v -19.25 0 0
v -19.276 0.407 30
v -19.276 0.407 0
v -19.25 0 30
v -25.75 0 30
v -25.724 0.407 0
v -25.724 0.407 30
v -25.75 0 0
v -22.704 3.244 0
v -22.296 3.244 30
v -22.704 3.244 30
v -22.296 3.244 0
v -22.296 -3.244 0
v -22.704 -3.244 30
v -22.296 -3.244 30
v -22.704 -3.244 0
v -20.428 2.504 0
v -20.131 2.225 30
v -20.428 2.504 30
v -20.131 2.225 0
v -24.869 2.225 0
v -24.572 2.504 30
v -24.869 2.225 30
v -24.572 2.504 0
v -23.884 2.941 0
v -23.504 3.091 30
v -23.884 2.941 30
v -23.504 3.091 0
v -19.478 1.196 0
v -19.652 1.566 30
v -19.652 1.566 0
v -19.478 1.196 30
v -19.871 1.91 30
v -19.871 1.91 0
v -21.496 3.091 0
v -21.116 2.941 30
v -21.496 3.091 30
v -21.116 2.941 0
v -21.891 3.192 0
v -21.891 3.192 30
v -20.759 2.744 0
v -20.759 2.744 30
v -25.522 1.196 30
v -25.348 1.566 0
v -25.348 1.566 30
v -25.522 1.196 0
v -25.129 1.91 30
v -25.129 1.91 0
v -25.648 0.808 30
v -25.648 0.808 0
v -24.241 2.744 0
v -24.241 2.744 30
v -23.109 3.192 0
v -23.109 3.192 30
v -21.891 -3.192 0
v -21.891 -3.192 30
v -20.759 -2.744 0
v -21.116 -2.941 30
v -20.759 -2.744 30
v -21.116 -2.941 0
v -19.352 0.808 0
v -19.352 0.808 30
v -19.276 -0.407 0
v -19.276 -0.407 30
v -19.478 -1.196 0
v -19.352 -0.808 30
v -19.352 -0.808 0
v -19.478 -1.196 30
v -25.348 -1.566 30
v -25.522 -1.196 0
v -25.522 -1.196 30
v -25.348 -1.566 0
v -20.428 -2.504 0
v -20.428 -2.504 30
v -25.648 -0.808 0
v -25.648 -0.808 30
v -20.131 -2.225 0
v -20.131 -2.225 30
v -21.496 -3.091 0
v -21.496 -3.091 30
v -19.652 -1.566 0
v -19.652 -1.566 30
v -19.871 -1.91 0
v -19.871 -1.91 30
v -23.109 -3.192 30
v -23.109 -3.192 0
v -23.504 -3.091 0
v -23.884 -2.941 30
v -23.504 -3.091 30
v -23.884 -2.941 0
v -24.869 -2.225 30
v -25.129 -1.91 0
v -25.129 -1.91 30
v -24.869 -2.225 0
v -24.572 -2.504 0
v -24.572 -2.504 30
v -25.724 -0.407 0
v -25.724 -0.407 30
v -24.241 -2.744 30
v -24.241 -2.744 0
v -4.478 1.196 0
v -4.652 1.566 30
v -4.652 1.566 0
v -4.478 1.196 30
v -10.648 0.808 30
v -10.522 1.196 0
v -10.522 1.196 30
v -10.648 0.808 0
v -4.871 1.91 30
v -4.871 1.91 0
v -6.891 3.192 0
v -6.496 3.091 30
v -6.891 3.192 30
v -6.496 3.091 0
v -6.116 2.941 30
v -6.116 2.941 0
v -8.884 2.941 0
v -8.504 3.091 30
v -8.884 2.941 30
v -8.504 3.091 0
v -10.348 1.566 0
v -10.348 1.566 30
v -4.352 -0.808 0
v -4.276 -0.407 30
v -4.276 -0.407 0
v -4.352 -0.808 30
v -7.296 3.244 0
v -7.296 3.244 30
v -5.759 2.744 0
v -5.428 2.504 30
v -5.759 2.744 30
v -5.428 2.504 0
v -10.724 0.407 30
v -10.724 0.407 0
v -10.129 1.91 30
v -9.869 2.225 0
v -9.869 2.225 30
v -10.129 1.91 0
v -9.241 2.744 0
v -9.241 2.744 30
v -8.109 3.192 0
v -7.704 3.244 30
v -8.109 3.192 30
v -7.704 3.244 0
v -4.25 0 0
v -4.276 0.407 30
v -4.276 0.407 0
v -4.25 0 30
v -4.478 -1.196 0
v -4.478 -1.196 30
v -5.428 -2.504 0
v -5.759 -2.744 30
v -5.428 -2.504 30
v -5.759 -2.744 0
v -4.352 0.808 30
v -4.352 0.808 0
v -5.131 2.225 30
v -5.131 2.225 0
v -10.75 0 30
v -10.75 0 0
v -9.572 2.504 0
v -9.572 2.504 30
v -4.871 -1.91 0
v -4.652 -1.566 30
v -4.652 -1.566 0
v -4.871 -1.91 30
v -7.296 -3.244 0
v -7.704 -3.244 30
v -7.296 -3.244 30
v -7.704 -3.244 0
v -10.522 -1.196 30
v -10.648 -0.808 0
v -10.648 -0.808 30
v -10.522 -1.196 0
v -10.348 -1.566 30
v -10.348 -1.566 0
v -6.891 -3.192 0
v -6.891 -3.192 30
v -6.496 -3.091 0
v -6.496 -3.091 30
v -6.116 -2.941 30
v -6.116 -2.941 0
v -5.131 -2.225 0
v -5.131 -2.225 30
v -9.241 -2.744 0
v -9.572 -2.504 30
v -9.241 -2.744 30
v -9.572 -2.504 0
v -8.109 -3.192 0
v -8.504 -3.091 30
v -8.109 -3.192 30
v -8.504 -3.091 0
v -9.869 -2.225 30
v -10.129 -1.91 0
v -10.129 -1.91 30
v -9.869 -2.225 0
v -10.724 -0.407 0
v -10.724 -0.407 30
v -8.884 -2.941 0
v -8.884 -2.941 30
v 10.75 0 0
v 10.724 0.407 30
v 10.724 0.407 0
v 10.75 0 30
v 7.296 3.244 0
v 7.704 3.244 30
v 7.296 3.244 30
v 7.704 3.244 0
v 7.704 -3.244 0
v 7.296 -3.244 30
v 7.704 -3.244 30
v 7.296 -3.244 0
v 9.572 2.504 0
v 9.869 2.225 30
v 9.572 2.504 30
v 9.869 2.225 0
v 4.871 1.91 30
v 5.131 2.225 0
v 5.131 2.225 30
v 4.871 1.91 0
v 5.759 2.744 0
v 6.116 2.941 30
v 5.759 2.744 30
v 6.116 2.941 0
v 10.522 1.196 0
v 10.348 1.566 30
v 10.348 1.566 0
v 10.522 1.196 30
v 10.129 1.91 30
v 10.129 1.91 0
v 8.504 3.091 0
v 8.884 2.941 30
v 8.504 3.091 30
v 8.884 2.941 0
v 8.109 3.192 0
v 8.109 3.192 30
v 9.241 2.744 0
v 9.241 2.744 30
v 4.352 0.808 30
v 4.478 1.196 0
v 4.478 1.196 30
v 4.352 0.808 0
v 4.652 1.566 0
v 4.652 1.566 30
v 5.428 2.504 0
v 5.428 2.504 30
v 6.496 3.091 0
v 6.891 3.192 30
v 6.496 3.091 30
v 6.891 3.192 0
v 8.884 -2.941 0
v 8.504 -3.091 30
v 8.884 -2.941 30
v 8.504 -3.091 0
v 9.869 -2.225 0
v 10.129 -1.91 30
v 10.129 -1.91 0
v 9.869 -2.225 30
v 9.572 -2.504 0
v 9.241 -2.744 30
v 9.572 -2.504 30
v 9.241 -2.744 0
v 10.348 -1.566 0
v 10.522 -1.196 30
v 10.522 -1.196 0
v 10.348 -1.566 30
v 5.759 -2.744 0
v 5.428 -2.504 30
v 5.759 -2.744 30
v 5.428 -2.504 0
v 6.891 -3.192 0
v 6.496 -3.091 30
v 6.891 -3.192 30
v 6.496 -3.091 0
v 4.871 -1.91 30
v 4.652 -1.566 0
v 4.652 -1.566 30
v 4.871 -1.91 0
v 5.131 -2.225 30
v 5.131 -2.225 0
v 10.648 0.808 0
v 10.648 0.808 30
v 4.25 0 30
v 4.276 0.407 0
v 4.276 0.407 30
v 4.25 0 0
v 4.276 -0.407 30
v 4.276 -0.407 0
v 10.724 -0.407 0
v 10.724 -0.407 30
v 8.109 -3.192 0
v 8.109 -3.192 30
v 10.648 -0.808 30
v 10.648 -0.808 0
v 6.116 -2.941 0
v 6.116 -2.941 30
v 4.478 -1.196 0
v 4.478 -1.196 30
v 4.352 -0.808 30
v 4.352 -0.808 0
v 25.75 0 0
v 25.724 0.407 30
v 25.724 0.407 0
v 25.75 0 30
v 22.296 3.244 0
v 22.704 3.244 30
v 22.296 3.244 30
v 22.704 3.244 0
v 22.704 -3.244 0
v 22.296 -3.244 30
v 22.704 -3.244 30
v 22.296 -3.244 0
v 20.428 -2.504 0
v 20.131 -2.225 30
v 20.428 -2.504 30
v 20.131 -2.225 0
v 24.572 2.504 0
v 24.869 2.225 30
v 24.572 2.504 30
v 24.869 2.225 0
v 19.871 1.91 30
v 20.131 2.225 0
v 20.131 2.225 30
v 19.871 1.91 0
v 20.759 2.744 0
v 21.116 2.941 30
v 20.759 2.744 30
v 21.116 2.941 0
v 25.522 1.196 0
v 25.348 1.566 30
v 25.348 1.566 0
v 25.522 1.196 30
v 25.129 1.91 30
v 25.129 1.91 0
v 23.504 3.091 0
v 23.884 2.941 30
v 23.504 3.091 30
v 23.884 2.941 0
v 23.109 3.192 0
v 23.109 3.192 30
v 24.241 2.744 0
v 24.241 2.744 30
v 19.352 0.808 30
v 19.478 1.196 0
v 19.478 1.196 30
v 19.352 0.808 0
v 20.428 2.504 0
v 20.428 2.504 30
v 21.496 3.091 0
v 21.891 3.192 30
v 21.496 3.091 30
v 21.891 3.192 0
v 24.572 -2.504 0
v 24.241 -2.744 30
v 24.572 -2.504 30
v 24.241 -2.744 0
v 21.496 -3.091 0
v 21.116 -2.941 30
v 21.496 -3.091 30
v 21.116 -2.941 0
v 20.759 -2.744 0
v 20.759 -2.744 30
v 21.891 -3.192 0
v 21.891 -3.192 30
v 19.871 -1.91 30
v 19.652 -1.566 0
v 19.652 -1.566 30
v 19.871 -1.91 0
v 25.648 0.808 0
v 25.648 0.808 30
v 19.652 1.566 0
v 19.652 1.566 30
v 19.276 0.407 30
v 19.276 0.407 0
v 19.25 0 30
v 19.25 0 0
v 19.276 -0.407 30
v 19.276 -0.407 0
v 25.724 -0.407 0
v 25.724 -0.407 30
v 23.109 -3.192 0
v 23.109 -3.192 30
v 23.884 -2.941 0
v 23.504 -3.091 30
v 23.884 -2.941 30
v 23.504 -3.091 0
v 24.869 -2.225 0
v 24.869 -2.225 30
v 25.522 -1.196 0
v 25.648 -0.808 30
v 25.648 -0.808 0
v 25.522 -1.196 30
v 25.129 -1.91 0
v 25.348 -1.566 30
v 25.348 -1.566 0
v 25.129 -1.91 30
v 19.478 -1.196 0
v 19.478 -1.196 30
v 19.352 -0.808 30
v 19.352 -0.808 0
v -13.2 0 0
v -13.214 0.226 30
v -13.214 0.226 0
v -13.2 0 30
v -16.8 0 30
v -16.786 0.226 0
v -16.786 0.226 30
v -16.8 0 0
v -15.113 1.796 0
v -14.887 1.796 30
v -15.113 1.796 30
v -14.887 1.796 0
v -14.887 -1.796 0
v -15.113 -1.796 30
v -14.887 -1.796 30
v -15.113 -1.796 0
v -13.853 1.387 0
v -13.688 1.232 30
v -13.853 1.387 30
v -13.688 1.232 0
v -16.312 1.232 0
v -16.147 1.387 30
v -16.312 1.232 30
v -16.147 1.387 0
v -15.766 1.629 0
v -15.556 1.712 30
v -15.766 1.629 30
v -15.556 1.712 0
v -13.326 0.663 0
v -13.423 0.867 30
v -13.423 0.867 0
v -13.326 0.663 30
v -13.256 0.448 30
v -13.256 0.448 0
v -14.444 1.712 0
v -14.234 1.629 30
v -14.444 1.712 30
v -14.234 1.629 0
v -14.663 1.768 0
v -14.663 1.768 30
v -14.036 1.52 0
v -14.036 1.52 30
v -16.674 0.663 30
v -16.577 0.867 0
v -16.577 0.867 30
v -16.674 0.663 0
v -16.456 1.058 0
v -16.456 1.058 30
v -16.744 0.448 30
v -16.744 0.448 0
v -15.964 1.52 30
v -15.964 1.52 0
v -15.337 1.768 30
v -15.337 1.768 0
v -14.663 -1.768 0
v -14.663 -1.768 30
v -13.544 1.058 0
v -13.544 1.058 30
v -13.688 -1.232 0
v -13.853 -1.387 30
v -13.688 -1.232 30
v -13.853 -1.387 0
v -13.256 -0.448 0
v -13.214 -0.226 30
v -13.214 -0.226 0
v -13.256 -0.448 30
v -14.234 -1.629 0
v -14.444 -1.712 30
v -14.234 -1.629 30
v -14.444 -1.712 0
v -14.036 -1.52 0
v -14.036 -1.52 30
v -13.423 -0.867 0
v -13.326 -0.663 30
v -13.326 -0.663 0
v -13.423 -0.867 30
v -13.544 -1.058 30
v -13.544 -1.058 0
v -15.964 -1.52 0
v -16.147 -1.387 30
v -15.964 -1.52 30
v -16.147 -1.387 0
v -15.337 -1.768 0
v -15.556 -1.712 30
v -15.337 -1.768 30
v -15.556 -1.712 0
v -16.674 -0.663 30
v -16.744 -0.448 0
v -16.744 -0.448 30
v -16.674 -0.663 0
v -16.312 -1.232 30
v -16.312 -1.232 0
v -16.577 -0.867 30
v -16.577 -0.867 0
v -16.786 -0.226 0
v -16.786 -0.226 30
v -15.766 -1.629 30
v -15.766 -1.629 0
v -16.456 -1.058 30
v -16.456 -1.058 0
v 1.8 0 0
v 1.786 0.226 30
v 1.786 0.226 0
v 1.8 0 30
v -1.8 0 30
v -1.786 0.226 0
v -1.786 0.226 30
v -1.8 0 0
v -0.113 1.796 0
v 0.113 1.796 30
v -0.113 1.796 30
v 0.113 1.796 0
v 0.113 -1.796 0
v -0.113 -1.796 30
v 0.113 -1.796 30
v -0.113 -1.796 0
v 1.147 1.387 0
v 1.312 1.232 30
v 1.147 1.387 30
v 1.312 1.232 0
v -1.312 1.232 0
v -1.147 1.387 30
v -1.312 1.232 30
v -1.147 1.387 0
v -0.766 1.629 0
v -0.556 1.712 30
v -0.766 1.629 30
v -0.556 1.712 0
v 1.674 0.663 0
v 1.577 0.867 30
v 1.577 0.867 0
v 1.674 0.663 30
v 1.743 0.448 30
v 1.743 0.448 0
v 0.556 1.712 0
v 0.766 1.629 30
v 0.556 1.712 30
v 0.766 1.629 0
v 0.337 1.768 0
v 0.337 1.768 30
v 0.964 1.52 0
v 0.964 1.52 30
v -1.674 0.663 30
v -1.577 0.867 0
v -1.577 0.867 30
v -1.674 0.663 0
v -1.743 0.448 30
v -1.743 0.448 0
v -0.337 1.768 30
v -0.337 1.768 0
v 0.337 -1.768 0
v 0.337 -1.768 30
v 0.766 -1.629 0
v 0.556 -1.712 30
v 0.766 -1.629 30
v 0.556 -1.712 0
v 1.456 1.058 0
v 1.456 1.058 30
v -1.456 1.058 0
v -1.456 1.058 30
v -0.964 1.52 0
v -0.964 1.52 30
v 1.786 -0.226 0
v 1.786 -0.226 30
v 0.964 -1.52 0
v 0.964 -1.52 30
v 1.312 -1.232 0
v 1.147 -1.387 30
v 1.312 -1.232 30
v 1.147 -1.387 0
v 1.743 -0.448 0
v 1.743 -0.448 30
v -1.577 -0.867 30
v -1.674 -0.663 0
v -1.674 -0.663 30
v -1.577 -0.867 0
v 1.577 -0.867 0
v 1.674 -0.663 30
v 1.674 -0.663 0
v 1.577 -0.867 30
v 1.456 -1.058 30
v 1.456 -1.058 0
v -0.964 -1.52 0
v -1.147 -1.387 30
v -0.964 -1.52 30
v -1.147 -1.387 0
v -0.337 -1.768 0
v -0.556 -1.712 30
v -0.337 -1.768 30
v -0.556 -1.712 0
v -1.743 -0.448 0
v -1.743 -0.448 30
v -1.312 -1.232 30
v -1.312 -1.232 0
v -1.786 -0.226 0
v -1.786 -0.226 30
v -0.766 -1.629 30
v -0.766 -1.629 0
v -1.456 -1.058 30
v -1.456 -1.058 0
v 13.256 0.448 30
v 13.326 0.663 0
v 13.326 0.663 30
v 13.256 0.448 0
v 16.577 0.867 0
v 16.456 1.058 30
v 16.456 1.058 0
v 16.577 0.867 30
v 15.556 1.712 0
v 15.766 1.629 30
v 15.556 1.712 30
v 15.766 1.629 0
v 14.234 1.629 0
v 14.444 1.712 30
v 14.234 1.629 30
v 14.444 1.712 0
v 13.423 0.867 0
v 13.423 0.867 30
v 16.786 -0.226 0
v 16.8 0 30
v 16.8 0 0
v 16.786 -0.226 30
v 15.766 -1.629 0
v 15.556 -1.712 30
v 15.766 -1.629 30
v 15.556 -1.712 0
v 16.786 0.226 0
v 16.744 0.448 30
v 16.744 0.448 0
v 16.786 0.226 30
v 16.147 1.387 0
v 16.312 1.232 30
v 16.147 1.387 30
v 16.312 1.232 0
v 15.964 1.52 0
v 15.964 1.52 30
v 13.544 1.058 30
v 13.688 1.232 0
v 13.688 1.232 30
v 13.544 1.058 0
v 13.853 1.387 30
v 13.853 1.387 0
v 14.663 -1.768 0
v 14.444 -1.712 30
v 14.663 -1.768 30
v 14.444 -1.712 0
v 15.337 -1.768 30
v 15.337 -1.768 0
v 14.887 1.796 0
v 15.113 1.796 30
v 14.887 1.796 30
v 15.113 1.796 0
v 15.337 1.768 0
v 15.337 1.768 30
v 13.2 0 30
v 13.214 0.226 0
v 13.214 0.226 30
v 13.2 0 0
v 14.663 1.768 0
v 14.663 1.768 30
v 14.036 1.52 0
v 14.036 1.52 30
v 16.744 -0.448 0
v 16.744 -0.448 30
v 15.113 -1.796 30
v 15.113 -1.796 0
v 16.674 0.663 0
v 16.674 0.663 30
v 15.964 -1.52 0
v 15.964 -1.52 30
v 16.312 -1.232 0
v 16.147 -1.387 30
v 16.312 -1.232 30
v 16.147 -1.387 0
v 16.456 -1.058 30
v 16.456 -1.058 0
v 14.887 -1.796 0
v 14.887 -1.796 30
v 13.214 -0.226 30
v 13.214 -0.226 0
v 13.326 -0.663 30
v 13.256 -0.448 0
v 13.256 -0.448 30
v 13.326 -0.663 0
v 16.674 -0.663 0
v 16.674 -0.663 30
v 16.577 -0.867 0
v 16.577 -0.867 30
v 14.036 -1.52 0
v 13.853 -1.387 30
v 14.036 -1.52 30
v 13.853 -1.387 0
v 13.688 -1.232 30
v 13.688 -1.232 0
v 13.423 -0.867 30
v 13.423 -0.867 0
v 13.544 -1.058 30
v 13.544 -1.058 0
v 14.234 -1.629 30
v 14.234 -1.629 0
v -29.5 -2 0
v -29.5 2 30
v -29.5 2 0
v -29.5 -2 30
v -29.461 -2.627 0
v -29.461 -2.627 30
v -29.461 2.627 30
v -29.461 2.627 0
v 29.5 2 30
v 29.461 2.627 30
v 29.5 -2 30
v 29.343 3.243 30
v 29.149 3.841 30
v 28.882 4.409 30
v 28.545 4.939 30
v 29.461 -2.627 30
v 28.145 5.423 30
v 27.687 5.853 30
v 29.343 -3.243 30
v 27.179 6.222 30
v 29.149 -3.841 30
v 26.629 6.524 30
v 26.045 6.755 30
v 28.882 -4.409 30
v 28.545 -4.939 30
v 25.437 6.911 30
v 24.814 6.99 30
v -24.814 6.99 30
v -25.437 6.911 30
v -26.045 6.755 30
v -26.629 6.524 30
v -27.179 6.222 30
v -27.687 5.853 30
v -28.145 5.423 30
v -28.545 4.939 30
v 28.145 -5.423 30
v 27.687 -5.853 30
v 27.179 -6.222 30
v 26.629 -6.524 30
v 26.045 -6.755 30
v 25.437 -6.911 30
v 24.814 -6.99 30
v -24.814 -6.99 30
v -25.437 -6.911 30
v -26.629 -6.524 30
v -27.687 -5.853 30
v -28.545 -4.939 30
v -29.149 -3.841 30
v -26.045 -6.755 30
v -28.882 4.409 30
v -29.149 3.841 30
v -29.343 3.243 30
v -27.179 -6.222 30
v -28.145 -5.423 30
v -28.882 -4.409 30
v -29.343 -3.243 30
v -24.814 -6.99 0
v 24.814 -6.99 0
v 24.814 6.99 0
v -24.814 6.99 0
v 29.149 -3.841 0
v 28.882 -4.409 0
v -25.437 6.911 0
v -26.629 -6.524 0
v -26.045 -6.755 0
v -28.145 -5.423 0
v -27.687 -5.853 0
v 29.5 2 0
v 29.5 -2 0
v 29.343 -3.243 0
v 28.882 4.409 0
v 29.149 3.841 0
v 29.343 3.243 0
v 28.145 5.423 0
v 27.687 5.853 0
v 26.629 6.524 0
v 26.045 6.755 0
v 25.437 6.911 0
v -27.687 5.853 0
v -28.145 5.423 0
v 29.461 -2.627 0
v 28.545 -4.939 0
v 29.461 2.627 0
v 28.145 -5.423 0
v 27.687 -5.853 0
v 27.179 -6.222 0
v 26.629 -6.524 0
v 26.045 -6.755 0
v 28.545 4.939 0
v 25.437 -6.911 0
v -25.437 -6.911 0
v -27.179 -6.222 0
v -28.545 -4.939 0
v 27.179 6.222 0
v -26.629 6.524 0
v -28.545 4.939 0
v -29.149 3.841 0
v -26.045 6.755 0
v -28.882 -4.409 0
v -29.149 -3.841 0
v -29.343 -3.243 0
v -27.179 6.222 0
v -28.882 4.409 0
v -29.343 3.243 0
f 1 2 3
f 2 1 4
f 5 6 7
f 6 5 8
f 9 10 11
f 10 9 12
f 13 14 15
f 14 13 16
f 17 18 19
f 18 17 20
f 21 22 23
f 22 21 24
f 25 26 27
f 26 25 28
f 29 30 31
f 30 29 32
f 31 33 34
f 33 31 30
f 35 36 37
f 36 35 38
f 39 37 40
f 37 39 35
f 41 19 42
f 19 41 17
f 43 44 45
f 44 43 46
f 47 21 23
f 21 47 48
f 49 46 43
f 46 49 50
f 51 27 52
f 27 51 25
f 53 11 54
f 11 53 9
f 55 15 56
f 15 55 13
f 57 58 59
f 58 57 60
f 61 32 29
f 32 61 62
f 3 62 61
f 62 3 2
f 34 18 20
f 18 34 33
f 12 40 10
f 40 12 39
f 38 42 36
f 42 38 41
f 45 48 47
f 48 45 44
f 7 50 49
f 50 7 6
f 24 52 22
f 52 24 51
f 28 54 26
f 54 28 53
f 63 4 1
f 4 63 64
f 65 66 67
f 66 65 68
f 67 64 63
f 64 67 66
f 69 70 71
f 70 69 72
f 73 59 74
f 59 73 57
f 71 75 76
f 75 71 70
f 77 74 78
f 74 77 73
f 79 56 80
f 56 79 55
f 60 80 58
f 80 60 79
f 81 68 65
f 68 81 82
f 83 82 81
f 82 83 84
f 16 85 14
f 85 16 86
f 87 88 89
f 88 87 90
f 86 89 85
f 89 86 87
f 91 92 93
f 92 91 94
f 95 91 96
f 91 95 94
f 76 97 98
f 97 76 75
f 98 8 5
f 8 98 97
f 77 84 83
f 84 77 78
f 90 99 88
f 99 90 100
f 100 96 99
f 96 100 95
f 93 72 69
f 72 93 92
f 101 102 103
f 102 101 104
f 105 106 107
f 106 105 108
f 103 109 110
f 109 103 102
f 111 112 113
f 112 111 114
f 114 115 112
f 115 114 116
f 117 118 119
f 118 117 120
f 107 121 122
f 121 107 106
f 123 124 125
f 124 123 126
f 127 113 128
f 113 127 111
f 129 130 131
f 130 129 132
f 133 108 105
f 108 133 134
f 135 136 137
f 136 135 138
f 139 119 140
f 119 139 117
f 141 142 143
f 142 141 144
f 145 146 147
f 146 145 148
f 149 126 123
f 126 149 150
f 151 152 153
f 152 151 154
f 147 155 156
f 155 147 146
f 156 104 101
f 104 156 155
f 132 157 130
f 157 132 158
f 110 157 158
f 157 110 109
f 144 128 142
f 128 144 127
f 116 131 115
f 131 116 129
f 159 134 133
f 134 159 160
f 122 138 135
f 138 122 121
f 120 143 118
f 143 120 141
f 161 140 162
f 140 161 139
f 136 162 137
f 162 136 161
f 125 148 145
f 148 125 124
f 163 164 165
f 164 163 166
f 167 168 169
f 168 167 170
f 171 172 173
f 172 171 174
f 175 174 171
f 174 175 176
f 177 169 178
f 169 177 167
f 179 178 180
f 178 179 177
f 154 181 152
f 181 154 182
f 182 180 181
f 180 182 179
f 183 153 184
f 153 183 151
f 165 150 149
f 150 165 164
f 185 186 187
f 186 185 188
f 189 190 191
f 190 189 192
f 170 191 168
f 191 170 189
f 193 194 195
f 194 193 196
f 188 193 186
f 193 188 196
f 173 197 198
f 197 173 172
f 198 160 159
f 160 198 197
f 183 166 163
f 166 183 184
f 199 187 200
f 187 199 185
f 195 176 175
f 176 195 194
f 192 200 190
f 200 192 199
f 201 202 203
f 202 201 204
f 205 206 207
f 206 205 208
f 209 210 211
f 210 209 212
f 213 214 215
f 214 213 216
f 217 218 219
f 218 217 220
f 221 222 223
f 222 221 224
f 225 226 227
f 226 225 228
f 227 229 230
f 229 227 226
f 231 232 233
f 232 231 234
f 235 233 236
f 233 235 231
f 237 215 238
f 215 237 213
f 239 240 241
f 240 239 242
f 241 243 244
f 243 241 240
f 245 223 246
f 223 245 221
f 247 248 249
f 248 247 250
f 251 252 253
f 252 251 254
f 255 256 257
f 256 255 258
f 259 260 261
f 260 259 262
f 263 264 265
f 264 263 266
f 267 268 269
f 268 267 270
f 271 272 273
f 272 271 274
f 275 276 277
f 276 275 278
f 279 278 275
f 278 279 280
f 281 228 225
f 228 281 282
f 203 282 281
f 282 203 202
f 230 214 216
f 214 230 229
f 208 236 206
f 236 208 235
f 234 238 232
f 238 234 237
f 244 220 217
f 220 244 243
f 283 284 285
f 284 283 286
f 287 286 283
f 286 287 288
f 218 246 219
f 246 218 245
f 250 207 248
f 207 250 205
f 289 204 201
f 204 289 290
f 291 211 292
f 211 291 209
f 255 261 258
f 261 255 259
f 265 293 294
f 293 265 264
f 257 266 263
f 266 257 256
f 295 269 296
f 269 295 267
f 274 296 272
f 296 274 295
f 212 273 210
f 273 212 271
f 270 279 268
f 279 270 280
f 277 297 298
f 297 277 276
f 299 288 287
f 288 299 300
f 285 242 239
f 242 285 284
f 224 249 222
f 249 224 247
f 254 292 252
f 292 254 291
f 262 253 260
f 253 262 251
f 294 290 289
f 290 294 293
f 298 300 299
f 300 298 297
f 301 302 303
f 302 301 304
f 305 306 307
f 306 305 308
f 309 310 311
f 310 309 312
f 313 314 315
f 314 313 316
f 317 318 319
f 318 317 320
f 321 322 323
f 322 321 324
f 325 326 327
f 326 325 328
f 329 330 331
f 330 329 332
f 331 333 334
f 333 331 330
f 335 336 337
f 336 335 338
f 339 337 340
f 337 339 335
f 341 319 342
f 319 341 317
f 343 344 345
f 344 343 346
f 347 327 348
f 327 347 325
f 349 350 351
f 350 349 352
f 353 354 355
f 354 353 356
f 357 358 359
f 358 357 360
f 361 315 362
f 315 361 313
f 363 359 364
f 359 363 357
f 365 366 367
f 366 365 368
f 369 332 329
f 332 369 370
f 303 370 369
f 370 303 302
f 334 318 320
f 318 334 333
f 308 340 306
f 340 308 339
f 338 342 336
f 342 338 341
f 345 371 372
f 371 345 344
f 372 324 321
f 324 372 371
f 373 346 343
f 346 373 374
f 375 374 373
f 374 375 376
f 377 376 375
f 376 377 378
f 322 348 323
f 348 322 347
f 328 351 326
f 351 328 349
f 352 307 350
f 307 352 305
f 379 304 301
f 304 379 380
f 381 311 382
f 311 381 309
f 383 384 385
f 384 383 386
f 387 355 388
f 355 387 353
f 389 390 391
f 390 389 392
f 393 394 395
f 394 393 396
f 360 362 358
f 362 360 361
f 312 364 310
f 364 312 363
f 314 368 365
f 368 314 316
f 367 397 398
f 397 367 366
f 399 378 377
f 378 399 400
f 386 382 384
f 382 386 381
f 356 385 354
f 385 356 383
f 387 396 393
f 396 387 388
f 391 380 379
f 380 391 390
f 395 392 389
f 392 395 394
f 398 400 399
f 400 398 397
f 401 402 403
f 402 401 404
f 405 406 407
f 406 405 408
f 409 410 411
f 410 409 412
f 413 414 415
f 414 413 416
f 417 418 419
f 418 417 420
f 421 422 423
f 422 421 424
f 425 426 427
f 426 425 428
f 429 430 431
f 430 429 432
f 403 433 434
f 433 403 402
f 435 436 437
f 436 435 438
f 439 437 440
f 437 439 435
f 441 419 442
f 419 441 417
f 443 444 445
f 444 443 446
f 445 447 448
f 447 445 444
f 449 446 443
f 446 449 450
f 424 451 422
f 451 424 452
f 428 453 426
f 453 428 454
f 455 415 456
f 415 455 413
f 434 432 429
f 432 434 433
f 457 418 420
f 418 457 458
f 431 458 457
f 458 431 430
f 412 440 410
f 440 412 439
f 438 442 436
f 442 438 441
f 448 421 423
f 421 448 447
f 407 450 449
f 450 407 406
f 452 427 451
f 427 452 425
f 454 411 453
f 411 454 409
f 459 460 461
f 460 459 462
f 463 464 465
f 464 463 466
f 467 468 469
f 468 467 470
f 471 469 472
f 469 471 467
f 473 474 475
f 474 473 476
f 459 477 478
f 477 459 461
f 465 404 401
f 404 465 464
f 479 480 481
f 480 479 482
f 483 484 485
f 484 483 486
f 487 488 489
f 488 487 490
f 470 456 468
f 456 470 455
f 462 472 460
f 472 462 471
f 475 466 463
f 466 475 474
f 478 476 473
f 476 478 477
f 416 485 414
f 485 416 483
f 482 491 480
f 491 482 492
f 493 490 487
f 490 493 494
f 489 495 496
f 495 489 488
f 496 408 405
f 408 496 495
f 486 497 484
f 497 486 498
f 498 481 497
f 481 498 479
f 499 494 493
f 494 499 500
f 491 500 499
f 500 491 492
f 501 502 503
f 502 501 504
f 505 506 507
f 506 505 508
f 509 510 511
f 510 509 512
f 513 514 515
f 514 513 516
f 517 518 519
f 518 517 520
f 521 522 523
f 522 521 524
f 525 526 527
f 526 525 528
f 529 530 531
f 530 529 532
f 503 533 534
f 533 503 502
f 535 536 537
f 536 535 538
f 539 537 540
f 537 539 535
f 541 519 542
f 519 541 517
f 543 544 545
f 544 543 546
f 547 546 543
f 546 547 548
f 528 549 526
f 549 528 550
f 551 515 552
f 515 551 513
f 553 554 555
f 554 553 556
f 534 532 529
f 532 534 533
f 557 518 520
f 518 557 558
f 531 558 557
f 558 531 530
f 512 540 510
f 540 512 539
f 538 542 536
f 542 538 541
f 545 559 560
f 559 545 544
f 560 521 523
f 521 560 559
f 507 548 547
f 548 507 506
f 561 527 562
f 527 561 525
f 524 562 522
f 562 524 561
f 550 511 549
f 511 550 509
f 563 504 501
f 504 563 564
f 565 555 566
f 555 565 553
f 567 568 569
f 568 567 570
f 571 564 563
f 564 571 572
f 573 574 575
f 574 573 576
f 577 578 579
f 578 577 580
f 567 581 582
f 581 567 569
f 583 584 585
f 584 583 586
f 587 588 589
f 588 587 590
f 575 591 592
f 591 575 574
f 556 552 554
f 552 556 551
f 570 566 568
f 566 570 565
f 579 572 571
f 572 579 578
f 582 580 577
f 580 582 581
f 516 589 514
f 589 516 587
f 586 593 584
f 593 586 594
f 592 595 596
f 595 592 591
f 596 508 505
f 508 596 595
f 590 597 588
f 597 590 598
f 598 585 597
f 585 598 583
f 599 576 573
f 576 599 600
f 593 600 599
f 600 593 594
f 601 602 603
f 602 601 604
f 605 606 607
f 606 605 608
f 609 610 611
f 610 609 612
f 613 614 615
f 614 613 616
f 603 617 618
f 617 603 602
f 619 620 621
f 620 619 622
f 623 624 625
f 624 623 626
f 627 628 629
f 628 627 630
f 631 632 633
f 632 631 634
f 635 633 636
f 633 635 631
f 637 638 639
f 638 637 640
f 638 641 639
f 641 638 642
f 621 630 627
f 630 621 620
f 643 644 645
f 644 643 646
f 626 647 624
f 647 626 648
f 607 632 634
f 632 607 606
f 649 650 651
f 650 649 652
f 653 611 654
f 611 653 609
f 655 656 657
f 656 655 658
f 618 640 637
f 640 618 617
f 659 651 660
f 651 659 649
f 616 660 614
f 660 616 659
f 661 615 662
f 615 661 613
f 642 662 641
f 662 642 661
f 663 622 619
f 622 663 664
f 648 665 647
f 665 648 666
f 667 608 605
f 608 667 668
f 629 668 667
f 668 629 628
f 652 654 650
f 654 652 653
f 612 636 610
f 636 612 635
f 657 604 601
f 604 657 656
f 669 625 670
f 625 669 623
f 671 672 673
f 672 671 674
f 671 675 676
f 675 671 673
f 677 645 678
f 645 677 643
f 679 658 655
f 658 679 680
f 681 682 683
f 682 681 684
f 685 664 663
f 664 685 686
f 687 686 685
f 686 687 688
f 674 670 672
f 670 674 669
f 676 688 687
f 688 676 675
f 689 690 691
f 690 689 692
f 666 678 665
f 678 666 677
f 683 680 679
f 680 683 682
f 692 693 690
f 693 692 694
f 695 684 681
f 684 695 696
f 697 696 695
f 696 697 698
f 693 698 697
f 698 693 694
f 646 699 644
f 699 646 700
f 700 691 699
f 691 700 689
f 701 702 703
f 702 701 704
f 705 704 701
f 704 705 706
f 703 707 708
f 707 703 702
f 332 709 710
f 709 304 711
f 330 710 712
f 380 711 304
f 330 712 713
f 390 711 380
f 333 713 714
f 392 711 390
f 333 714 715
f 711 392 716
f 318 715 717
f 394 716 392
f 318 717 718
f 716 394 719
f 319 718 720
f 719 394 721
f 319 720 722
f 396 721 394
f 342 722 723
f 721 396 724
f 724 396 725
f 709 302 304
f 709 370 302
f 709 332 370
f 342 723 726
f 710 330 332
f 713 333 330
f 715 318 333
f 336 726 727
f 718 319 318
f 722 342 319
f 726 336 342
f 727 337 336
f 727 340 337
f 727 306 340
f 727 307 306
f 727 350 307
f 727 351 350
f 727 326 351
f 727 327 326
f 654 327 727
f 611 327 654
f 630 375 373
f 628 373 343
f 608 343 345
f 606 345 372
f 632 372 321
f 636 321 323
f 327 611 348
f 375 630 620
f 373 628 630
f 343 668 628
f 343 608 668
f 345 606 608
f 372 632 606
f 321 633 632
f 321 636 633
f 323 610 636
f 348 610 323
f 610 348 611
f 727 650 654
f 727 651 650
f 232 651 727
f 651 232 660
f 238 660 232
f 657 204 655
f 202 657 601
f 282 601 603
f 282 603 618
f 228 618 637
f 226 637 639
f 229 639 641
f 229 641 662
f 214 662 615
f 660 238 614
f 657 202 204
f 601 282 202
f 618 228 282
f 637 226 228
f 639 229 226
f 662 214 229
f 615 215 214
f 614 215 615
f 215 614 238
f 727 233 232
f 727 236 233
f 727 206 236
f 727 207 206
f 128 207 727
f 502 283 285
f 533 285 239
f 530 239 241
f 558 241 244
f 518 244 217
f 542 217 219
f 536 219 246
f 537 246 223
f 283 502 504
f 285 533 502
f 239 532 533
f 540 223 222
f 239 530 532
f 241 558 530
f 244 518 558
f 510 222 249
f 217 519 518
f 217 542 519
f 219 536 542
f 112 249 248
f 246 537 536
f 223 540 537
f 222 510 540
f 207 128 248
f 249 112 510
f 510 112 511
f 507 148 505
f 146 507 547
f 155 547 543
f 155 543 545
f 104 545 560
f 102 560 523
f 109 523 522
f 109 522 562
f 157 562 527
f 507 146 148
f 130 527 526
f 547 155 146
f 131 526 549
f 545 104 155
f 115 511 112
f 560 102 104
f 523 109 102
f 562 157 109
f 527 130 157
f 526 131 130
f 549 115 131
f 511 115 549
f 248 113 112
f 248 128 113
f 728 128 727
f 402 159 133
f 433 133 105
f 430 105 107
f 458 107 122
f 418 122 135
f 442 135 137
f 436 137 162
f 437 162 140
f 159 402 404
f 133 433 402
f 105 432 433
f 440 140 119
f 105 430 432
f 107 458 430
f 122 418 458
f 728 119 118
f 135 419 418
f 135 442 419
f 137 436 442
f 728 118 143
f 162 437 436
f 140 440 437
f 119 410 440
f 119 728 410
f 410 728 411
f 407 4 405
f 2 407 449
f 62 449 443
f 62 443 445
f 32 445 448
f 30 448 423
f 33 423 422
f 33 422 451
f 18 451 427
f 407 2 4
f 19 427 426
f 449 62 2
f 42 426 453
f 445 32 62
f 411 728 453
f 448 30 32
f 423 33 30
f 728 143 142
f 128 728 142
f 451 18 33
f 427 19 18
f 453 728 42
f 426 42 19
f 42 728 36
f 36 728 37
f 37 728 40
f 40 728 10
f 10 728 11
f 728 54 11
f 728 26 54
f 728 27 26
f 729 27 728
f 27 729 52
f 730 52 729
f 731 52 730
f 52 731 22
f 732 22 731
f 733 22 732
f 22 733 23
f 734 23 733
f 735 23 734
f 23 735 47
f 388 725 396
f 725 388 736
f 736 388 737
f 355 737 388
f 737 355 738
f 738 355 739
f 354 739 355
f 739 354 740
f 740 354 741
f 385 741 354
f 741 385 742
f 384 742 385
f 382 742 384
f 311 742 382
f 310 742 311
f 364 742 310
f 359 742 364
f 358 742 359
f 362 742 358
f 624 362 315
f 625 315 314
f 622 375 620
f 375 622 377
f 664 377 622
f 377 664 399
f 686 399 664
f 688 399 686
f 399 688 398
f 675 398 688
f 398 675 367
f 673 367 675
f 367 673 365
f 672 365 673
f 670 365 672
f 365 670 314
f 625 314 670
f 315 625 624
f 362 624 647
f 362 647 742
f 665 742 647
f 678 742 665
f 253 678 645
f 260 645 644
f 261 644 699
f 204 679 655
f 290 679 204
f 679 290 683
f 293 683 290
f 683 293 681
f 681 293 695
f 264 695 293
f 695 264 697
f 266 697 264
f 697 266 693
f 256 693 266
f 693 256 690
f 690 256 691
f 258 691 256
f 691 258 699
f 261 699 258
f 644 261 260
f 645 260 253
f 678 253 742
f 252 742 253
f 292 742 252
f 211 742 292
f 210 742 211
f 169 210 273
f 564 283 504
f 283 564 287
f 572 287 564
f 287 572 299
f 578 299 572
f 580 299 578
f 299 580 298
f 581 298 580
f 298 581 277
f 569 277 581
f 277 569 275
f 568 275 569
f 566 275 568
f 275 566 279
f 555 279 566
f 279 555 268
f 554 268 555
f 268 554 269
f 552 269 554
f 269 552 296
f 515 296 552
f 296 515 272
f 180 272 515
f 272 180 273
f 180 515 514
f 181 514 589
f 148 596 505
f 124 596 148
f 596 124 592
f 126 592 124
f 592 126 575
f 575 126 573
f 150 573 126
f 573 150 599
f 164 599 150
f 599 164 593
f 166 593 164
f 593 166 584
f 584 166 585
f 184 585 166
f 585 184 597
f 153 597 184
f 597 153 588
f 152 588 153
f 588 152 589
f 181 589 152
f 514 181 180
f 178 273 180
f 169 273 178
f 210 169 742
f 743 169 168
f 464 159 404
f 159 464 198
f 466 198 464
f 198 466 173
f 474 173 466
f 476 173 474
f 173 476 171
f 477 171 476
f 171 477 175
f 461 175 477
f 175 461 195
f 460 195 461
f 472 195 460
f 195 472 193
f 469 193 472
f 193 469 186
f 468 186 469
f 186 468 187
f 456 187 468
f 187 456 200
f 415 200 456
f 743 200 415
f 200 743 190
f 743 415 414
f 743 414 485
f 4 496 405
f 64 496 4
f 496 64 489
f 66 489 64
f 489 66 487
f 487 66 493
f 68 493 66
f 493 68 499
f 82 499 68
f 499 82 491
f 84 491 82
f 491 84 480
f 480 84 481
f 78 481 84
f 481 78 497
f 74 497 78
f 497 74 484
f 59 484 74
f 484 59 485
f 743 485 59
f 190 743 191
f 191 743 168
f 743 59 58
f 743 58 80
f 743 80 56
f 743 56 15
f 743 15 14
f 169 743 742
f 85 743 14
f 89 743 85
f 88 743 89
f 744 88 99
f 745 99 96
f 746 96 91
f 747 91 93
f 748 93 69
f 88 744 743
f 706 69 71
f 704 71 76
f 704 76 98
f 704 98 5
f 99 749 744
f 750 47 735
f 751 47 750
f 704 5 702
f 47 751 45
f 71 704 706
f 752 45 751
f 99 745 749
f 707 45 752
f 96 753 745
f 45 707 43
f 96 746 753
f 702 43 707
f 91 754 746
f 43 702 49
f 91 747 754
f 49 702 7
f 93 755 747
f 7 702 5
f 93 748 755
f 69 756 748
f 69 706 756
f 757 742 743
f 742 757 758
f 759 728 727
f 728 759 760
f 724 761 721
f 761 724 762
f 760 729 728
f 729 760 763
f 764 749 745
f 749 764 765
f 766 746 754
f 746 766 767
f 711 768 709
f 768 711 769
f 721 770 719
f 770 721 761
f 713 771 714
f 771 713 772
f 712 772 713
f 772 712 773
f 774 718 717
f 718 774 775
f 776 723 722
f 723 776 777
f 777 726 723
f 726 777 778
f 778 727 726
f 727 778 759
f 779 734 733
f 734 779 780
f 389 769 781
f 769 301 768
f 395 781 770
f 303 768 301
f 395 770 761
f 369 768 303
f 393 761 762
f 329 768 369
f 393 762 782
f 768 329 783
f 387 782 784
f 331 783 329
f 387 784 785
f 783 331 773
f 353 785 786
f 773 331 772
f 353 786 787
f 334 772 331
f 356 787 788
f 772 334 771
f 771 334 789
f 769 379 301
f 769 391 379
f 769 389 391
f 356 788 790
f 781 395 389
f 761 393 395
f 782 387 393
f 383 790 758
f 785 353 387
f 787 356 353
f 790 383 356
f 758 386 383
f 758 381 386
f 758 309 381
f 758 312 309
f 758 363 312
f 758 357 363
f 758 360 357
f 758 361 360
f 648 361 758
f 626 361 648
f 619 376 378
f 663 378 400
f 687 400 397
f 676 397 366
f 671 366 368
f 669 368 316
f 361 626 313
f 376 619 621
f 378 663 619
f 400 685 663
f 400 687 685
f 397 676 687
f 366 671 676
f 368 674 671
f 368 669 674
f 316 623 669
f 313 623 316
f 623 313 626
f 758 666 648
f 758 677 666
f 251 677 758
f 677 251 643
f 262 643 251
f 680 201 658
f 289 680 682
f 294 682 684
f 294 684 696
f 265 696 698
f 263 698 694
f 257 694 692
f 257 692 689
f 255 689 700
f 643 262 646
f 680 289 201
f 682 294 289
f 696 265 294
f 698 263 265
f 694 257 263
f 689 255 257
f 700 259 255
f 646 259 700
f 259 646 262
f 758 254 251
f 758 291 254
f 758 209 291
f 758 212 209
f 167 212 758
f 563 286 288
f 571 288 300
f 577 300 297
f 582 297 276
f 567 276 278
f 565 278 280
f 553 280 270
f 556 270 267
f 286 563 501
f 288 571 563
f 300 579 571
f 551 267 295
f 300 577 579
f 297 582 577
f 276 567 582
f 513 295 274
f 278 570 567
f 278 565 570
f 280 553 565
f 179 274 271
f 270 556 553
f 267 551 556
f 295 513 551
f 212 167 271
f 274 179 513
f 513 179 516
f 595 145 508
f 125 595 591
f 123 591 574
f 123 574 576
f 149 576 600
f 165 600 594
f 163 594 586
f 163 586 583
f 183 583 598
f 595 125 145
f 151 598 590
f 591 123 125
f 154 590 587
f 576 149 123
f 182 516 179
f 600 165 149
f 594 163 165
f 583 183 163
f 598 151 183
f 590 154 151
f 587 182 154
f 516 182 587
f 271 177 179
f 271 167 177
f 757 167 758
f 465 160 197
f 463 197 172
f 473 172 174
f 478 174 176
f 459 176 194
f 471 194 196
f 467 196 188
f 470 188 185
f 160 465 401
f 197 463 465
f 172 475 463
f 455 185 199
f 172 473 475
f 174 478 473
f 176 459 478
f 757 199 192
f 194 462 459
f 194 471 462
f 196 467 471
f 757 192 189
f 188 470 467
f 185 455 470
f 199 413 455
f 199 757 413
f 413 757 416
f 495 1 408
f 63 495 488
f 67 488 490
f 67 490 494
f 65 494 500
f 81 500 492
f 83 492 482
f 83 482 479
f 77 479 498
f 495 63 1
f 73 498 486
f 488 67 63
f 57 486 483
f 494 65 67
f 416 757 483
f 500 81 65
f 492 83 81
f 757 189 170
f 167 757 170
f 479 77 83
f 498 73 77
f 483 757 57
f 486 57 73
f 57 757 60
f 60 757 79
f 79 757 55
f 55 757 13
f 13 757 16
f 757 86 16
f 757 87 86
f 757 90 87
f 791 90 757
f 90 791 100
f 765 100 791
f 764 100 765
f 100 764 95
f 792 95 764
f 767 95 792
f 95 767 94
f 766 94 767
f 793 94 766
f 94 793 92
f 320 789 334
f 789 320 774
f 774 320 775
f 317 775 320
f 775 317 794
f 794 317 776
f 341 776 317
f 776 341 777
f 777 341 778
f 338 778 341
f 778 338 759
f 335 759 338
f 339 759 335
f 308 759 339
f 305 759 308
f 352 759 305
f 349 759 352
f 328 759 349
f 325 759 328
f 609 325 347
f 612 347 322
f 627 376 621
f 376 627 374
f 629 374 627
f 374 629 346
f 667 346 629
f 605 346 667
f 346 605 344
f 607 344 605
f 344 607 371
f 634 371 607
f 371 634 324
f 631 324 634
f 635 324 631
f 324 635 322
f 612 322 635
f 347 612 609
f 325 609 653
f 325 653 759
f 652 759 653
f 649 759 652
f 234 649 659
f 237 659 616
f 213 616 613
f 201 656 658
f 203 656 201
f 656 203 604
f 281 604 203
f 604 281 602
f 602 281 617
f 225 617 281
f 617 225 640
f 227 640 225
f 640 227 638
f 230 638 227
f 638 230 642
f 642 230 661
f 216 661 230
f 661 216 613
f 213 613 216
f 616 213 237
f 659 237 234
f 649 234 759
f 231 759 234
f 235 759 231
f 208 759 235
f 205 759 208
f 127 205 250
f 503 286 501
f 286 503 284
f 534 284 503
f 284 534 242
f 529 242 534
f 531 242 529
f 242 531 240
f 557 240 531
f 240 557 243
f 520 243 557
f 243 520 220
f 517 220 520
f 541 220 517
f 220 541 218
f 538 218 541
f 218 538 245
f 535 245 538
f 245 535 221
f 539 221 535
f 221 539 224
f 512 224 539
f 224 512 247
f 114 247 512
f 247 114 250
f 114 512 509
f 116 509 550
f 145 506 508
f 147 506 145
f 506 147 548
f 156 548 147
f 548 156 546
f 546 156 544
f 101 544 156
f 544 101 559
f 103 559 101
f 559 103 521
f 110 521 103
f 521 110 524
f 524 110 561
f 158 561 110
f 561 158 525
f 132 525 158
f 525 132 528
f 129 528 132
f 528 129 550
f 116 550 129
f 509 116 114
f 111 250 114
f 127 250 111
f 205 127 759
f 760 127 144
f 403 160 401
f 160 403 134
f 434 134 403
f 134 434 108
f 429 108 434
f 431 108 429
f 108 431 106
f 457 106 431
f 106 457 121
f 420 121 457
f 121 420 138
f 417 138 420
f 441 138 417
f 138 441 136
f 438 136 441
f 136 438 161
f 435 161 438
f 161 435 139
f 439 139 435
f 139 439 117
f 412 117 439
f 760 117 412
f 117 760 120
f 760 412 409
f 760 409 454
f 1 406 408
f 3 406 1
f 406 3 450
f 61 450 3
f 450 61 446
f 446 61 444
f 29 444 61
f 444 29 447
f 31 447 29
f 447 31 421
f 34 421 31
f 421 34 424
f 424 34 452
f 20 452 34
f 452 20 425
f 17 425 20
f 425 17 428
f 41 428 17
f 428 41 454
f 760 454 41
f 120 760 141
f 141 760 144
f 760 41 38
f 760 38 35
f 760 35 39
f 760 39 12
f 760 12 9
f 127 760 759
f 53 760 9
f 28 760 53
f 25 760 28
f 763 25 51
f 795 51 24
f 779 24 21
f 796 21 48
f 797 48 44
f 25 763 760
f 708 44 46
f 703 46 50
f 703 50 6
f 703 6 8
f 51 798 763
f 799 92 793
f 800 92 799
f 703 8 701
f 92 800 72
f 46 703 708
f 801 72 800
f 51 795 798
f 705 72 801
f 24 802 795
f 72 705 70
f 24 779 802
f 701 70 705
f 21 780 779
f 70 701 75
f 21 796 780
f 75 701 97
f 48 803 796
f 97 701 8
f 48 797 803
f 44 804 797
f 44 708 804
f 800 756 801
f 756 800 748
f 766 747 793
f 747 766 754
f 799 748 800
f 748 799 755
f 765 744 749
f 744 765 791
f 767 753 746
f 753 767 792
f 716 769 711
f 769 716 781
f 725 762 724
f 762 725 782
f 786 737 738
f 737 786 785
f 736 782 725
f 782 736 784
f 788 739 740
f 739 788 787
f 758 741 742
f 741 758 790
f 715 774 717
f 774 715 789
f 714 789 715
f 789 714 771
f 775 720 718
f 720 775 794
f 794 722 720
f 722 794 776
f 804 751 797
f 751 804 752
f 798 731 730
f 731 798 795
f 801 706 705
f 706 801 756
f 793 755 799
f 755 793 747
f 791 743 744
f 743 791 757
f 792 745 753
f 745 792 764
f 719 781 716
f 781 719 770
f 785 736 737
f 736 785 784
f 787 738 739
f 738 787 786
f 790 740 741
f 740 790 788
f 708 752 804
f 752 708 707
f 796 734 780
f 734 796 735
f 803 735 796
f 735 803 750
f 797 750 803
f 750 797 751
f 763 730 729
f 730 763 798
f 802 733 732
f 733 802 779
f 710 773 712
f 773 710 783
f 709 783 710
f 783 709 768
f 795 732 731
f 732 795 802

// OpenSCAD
$fn = 50;


difference() {
	union() {
		translate(v = [0, 0, 0]) {
			rotate(a = [0, 0, 0]) {
				hull() {
					translate(v = [-24.5000000000, 2.0000000000, 0]) {
						rotate(a = [0, 0, 0]) {
							translate(v = [0, 0, 0]) {
								rotate(a = [0, 0, 0]) {
									cylinder(h = 30, r = 5);
								}
							}
						}
					}
					translate(v = [24.5000000000, 2.0000000000, 0]) {
						rotate(a = [0, 0, 0]) {
							translate(v = [0, 0, 0]) {
								rotate(a = [0, 0, 0]) {
									cylinder(h = 30, r = 5);
								}
							}
						}
					}
					translate(v = [-24.5000000000, -2.0000000000, 0]) {
						rotate(a = [0, 0, 0]) {
							translate(v = [0, 0, 0]) {
								rotate(a = [0, 0, 0]) {
									cylinder(h = 30, r = 5);
								}
							}
						}
					}
					translate(v = [24.5000000000, -2.0000000000, 0]) {
						rotate(a = [0, 0, 0]) {
							translate(v = [0, 0, 0]) {
								rotate(a = [0, 0, 0]) {
									cylinder(h = 30, r = 5);
								}
							}
						}
					}
				}
			}
		}
	}
	union() {
		translate(v = [-22.5000000000, 0.0000000000, 0]) {
			rotate(a = [0, 0, 0]) {
				translate(v = [0, 0, -50]) {
					rotate(a = [0, 0, 0]) {
						cylinder(h = 100, r = 3.2500000000);
					}
				}
			}
		}
		translate(v = [-7.5000000000, 0.0000000000, 0]) {
			rotate(a = [0, 0, 0]) {
				translate(v = [0, 0, -50]) {
					rotate(a = [0, 0, 0]) {
						cylinder(h = 100, r = 3.2500000000);
					}
				}
			}
		}
		translate(v = [7.5000000000, 0.0000000000, 0]) {
			rotate(a = [0, 0, 0]) {
				translate(v = [0, 0, -50]) {
					rotate(a = [0, 0, 0]) {
						cylinder(h = 100, r = 3.2500000000);
					}
				}
			}
		}
		translate(v = [22.5000000000, 0.0000000000, 0]) {
			rotate(a = [0, 0, 0]) {
				translate(v = [0, 0, -50]) {
					rotate(a = [0, 0, 0]) {
						cylinder(h = 100, r = 3.2500000000);
					}
				}
			}
		}
		translate(v = [-22.5000000000, 0.0000000000, 0]) {
			rotate(a = [0, 0, 0]) {
				translate(v = [0, 0, -50]) {
					rotate(a = [0, 0, 0]) {
						cylinder(h = 100, r = 1.8000000000);
					}
				}
			}
		}
		translate(v = [-15.0000000000, 0.0000000000, 0]) {
			rotate(a = [0, 0, 0]) {
				translate(v = [0, 0, -50]) {
					rotate(a = [0, 0, 0]) {
						cylinder(h = 100, r = 1.8000000000);
					}
				}
			}
		}
		translate(v = [-7.5000000000, 0.0000000000, 0]) {
			rotate(a = [0, 0, 0]) {
				translate(v = [0, 0, -50]) {
					rotate(a = [0, 0, 0]) {
						cylinder(h = 100, r = 1.8000000000);
					}
				}
			}
		}
		translate(v = [0.0000000000, 0.0000000000, 0]) {
			rotate(a = [0, 0, 0]) {
				translate(v = [0, 0, -50]) {
					rotate(a = [0, 0, 0]) {
						cylinder(h = 100, r = 1.8000000000);
					}
				}
			}
		}
		translate(v = [7.5000000000, 0.0000000000, 0]) {
			rotate(a = [0, 0, 0]) {
				translate(v = [0, 0, -50]) {
					rotate(a = [0, 0, 0]) {
						cylinder(h = 100, r = 1.8000000000);
					}
				}
			}
		}
		translate(v = [15.0000000000, 0.0000000000, 0]) {
			rotate(a = [0, 0, 0]) {
				translate(v = [0, 0, -50]) {
					rotate(a = [0, 0, 0]) {
						cylinder(h = 100, r = 1.8000000000);
					}
				}
			}
		}
		translate(v = [22.5000000000, 0.0000000000, 0]) {
			rotate(a = [0, 0, 0]) {
				translate(v = [0, 0, -50]) {
					rotate(a = [0, 0, 0]) {
						cylinder(h = 100, r = 1.8000000000);
					}
				}
			}
		}
	}
}
